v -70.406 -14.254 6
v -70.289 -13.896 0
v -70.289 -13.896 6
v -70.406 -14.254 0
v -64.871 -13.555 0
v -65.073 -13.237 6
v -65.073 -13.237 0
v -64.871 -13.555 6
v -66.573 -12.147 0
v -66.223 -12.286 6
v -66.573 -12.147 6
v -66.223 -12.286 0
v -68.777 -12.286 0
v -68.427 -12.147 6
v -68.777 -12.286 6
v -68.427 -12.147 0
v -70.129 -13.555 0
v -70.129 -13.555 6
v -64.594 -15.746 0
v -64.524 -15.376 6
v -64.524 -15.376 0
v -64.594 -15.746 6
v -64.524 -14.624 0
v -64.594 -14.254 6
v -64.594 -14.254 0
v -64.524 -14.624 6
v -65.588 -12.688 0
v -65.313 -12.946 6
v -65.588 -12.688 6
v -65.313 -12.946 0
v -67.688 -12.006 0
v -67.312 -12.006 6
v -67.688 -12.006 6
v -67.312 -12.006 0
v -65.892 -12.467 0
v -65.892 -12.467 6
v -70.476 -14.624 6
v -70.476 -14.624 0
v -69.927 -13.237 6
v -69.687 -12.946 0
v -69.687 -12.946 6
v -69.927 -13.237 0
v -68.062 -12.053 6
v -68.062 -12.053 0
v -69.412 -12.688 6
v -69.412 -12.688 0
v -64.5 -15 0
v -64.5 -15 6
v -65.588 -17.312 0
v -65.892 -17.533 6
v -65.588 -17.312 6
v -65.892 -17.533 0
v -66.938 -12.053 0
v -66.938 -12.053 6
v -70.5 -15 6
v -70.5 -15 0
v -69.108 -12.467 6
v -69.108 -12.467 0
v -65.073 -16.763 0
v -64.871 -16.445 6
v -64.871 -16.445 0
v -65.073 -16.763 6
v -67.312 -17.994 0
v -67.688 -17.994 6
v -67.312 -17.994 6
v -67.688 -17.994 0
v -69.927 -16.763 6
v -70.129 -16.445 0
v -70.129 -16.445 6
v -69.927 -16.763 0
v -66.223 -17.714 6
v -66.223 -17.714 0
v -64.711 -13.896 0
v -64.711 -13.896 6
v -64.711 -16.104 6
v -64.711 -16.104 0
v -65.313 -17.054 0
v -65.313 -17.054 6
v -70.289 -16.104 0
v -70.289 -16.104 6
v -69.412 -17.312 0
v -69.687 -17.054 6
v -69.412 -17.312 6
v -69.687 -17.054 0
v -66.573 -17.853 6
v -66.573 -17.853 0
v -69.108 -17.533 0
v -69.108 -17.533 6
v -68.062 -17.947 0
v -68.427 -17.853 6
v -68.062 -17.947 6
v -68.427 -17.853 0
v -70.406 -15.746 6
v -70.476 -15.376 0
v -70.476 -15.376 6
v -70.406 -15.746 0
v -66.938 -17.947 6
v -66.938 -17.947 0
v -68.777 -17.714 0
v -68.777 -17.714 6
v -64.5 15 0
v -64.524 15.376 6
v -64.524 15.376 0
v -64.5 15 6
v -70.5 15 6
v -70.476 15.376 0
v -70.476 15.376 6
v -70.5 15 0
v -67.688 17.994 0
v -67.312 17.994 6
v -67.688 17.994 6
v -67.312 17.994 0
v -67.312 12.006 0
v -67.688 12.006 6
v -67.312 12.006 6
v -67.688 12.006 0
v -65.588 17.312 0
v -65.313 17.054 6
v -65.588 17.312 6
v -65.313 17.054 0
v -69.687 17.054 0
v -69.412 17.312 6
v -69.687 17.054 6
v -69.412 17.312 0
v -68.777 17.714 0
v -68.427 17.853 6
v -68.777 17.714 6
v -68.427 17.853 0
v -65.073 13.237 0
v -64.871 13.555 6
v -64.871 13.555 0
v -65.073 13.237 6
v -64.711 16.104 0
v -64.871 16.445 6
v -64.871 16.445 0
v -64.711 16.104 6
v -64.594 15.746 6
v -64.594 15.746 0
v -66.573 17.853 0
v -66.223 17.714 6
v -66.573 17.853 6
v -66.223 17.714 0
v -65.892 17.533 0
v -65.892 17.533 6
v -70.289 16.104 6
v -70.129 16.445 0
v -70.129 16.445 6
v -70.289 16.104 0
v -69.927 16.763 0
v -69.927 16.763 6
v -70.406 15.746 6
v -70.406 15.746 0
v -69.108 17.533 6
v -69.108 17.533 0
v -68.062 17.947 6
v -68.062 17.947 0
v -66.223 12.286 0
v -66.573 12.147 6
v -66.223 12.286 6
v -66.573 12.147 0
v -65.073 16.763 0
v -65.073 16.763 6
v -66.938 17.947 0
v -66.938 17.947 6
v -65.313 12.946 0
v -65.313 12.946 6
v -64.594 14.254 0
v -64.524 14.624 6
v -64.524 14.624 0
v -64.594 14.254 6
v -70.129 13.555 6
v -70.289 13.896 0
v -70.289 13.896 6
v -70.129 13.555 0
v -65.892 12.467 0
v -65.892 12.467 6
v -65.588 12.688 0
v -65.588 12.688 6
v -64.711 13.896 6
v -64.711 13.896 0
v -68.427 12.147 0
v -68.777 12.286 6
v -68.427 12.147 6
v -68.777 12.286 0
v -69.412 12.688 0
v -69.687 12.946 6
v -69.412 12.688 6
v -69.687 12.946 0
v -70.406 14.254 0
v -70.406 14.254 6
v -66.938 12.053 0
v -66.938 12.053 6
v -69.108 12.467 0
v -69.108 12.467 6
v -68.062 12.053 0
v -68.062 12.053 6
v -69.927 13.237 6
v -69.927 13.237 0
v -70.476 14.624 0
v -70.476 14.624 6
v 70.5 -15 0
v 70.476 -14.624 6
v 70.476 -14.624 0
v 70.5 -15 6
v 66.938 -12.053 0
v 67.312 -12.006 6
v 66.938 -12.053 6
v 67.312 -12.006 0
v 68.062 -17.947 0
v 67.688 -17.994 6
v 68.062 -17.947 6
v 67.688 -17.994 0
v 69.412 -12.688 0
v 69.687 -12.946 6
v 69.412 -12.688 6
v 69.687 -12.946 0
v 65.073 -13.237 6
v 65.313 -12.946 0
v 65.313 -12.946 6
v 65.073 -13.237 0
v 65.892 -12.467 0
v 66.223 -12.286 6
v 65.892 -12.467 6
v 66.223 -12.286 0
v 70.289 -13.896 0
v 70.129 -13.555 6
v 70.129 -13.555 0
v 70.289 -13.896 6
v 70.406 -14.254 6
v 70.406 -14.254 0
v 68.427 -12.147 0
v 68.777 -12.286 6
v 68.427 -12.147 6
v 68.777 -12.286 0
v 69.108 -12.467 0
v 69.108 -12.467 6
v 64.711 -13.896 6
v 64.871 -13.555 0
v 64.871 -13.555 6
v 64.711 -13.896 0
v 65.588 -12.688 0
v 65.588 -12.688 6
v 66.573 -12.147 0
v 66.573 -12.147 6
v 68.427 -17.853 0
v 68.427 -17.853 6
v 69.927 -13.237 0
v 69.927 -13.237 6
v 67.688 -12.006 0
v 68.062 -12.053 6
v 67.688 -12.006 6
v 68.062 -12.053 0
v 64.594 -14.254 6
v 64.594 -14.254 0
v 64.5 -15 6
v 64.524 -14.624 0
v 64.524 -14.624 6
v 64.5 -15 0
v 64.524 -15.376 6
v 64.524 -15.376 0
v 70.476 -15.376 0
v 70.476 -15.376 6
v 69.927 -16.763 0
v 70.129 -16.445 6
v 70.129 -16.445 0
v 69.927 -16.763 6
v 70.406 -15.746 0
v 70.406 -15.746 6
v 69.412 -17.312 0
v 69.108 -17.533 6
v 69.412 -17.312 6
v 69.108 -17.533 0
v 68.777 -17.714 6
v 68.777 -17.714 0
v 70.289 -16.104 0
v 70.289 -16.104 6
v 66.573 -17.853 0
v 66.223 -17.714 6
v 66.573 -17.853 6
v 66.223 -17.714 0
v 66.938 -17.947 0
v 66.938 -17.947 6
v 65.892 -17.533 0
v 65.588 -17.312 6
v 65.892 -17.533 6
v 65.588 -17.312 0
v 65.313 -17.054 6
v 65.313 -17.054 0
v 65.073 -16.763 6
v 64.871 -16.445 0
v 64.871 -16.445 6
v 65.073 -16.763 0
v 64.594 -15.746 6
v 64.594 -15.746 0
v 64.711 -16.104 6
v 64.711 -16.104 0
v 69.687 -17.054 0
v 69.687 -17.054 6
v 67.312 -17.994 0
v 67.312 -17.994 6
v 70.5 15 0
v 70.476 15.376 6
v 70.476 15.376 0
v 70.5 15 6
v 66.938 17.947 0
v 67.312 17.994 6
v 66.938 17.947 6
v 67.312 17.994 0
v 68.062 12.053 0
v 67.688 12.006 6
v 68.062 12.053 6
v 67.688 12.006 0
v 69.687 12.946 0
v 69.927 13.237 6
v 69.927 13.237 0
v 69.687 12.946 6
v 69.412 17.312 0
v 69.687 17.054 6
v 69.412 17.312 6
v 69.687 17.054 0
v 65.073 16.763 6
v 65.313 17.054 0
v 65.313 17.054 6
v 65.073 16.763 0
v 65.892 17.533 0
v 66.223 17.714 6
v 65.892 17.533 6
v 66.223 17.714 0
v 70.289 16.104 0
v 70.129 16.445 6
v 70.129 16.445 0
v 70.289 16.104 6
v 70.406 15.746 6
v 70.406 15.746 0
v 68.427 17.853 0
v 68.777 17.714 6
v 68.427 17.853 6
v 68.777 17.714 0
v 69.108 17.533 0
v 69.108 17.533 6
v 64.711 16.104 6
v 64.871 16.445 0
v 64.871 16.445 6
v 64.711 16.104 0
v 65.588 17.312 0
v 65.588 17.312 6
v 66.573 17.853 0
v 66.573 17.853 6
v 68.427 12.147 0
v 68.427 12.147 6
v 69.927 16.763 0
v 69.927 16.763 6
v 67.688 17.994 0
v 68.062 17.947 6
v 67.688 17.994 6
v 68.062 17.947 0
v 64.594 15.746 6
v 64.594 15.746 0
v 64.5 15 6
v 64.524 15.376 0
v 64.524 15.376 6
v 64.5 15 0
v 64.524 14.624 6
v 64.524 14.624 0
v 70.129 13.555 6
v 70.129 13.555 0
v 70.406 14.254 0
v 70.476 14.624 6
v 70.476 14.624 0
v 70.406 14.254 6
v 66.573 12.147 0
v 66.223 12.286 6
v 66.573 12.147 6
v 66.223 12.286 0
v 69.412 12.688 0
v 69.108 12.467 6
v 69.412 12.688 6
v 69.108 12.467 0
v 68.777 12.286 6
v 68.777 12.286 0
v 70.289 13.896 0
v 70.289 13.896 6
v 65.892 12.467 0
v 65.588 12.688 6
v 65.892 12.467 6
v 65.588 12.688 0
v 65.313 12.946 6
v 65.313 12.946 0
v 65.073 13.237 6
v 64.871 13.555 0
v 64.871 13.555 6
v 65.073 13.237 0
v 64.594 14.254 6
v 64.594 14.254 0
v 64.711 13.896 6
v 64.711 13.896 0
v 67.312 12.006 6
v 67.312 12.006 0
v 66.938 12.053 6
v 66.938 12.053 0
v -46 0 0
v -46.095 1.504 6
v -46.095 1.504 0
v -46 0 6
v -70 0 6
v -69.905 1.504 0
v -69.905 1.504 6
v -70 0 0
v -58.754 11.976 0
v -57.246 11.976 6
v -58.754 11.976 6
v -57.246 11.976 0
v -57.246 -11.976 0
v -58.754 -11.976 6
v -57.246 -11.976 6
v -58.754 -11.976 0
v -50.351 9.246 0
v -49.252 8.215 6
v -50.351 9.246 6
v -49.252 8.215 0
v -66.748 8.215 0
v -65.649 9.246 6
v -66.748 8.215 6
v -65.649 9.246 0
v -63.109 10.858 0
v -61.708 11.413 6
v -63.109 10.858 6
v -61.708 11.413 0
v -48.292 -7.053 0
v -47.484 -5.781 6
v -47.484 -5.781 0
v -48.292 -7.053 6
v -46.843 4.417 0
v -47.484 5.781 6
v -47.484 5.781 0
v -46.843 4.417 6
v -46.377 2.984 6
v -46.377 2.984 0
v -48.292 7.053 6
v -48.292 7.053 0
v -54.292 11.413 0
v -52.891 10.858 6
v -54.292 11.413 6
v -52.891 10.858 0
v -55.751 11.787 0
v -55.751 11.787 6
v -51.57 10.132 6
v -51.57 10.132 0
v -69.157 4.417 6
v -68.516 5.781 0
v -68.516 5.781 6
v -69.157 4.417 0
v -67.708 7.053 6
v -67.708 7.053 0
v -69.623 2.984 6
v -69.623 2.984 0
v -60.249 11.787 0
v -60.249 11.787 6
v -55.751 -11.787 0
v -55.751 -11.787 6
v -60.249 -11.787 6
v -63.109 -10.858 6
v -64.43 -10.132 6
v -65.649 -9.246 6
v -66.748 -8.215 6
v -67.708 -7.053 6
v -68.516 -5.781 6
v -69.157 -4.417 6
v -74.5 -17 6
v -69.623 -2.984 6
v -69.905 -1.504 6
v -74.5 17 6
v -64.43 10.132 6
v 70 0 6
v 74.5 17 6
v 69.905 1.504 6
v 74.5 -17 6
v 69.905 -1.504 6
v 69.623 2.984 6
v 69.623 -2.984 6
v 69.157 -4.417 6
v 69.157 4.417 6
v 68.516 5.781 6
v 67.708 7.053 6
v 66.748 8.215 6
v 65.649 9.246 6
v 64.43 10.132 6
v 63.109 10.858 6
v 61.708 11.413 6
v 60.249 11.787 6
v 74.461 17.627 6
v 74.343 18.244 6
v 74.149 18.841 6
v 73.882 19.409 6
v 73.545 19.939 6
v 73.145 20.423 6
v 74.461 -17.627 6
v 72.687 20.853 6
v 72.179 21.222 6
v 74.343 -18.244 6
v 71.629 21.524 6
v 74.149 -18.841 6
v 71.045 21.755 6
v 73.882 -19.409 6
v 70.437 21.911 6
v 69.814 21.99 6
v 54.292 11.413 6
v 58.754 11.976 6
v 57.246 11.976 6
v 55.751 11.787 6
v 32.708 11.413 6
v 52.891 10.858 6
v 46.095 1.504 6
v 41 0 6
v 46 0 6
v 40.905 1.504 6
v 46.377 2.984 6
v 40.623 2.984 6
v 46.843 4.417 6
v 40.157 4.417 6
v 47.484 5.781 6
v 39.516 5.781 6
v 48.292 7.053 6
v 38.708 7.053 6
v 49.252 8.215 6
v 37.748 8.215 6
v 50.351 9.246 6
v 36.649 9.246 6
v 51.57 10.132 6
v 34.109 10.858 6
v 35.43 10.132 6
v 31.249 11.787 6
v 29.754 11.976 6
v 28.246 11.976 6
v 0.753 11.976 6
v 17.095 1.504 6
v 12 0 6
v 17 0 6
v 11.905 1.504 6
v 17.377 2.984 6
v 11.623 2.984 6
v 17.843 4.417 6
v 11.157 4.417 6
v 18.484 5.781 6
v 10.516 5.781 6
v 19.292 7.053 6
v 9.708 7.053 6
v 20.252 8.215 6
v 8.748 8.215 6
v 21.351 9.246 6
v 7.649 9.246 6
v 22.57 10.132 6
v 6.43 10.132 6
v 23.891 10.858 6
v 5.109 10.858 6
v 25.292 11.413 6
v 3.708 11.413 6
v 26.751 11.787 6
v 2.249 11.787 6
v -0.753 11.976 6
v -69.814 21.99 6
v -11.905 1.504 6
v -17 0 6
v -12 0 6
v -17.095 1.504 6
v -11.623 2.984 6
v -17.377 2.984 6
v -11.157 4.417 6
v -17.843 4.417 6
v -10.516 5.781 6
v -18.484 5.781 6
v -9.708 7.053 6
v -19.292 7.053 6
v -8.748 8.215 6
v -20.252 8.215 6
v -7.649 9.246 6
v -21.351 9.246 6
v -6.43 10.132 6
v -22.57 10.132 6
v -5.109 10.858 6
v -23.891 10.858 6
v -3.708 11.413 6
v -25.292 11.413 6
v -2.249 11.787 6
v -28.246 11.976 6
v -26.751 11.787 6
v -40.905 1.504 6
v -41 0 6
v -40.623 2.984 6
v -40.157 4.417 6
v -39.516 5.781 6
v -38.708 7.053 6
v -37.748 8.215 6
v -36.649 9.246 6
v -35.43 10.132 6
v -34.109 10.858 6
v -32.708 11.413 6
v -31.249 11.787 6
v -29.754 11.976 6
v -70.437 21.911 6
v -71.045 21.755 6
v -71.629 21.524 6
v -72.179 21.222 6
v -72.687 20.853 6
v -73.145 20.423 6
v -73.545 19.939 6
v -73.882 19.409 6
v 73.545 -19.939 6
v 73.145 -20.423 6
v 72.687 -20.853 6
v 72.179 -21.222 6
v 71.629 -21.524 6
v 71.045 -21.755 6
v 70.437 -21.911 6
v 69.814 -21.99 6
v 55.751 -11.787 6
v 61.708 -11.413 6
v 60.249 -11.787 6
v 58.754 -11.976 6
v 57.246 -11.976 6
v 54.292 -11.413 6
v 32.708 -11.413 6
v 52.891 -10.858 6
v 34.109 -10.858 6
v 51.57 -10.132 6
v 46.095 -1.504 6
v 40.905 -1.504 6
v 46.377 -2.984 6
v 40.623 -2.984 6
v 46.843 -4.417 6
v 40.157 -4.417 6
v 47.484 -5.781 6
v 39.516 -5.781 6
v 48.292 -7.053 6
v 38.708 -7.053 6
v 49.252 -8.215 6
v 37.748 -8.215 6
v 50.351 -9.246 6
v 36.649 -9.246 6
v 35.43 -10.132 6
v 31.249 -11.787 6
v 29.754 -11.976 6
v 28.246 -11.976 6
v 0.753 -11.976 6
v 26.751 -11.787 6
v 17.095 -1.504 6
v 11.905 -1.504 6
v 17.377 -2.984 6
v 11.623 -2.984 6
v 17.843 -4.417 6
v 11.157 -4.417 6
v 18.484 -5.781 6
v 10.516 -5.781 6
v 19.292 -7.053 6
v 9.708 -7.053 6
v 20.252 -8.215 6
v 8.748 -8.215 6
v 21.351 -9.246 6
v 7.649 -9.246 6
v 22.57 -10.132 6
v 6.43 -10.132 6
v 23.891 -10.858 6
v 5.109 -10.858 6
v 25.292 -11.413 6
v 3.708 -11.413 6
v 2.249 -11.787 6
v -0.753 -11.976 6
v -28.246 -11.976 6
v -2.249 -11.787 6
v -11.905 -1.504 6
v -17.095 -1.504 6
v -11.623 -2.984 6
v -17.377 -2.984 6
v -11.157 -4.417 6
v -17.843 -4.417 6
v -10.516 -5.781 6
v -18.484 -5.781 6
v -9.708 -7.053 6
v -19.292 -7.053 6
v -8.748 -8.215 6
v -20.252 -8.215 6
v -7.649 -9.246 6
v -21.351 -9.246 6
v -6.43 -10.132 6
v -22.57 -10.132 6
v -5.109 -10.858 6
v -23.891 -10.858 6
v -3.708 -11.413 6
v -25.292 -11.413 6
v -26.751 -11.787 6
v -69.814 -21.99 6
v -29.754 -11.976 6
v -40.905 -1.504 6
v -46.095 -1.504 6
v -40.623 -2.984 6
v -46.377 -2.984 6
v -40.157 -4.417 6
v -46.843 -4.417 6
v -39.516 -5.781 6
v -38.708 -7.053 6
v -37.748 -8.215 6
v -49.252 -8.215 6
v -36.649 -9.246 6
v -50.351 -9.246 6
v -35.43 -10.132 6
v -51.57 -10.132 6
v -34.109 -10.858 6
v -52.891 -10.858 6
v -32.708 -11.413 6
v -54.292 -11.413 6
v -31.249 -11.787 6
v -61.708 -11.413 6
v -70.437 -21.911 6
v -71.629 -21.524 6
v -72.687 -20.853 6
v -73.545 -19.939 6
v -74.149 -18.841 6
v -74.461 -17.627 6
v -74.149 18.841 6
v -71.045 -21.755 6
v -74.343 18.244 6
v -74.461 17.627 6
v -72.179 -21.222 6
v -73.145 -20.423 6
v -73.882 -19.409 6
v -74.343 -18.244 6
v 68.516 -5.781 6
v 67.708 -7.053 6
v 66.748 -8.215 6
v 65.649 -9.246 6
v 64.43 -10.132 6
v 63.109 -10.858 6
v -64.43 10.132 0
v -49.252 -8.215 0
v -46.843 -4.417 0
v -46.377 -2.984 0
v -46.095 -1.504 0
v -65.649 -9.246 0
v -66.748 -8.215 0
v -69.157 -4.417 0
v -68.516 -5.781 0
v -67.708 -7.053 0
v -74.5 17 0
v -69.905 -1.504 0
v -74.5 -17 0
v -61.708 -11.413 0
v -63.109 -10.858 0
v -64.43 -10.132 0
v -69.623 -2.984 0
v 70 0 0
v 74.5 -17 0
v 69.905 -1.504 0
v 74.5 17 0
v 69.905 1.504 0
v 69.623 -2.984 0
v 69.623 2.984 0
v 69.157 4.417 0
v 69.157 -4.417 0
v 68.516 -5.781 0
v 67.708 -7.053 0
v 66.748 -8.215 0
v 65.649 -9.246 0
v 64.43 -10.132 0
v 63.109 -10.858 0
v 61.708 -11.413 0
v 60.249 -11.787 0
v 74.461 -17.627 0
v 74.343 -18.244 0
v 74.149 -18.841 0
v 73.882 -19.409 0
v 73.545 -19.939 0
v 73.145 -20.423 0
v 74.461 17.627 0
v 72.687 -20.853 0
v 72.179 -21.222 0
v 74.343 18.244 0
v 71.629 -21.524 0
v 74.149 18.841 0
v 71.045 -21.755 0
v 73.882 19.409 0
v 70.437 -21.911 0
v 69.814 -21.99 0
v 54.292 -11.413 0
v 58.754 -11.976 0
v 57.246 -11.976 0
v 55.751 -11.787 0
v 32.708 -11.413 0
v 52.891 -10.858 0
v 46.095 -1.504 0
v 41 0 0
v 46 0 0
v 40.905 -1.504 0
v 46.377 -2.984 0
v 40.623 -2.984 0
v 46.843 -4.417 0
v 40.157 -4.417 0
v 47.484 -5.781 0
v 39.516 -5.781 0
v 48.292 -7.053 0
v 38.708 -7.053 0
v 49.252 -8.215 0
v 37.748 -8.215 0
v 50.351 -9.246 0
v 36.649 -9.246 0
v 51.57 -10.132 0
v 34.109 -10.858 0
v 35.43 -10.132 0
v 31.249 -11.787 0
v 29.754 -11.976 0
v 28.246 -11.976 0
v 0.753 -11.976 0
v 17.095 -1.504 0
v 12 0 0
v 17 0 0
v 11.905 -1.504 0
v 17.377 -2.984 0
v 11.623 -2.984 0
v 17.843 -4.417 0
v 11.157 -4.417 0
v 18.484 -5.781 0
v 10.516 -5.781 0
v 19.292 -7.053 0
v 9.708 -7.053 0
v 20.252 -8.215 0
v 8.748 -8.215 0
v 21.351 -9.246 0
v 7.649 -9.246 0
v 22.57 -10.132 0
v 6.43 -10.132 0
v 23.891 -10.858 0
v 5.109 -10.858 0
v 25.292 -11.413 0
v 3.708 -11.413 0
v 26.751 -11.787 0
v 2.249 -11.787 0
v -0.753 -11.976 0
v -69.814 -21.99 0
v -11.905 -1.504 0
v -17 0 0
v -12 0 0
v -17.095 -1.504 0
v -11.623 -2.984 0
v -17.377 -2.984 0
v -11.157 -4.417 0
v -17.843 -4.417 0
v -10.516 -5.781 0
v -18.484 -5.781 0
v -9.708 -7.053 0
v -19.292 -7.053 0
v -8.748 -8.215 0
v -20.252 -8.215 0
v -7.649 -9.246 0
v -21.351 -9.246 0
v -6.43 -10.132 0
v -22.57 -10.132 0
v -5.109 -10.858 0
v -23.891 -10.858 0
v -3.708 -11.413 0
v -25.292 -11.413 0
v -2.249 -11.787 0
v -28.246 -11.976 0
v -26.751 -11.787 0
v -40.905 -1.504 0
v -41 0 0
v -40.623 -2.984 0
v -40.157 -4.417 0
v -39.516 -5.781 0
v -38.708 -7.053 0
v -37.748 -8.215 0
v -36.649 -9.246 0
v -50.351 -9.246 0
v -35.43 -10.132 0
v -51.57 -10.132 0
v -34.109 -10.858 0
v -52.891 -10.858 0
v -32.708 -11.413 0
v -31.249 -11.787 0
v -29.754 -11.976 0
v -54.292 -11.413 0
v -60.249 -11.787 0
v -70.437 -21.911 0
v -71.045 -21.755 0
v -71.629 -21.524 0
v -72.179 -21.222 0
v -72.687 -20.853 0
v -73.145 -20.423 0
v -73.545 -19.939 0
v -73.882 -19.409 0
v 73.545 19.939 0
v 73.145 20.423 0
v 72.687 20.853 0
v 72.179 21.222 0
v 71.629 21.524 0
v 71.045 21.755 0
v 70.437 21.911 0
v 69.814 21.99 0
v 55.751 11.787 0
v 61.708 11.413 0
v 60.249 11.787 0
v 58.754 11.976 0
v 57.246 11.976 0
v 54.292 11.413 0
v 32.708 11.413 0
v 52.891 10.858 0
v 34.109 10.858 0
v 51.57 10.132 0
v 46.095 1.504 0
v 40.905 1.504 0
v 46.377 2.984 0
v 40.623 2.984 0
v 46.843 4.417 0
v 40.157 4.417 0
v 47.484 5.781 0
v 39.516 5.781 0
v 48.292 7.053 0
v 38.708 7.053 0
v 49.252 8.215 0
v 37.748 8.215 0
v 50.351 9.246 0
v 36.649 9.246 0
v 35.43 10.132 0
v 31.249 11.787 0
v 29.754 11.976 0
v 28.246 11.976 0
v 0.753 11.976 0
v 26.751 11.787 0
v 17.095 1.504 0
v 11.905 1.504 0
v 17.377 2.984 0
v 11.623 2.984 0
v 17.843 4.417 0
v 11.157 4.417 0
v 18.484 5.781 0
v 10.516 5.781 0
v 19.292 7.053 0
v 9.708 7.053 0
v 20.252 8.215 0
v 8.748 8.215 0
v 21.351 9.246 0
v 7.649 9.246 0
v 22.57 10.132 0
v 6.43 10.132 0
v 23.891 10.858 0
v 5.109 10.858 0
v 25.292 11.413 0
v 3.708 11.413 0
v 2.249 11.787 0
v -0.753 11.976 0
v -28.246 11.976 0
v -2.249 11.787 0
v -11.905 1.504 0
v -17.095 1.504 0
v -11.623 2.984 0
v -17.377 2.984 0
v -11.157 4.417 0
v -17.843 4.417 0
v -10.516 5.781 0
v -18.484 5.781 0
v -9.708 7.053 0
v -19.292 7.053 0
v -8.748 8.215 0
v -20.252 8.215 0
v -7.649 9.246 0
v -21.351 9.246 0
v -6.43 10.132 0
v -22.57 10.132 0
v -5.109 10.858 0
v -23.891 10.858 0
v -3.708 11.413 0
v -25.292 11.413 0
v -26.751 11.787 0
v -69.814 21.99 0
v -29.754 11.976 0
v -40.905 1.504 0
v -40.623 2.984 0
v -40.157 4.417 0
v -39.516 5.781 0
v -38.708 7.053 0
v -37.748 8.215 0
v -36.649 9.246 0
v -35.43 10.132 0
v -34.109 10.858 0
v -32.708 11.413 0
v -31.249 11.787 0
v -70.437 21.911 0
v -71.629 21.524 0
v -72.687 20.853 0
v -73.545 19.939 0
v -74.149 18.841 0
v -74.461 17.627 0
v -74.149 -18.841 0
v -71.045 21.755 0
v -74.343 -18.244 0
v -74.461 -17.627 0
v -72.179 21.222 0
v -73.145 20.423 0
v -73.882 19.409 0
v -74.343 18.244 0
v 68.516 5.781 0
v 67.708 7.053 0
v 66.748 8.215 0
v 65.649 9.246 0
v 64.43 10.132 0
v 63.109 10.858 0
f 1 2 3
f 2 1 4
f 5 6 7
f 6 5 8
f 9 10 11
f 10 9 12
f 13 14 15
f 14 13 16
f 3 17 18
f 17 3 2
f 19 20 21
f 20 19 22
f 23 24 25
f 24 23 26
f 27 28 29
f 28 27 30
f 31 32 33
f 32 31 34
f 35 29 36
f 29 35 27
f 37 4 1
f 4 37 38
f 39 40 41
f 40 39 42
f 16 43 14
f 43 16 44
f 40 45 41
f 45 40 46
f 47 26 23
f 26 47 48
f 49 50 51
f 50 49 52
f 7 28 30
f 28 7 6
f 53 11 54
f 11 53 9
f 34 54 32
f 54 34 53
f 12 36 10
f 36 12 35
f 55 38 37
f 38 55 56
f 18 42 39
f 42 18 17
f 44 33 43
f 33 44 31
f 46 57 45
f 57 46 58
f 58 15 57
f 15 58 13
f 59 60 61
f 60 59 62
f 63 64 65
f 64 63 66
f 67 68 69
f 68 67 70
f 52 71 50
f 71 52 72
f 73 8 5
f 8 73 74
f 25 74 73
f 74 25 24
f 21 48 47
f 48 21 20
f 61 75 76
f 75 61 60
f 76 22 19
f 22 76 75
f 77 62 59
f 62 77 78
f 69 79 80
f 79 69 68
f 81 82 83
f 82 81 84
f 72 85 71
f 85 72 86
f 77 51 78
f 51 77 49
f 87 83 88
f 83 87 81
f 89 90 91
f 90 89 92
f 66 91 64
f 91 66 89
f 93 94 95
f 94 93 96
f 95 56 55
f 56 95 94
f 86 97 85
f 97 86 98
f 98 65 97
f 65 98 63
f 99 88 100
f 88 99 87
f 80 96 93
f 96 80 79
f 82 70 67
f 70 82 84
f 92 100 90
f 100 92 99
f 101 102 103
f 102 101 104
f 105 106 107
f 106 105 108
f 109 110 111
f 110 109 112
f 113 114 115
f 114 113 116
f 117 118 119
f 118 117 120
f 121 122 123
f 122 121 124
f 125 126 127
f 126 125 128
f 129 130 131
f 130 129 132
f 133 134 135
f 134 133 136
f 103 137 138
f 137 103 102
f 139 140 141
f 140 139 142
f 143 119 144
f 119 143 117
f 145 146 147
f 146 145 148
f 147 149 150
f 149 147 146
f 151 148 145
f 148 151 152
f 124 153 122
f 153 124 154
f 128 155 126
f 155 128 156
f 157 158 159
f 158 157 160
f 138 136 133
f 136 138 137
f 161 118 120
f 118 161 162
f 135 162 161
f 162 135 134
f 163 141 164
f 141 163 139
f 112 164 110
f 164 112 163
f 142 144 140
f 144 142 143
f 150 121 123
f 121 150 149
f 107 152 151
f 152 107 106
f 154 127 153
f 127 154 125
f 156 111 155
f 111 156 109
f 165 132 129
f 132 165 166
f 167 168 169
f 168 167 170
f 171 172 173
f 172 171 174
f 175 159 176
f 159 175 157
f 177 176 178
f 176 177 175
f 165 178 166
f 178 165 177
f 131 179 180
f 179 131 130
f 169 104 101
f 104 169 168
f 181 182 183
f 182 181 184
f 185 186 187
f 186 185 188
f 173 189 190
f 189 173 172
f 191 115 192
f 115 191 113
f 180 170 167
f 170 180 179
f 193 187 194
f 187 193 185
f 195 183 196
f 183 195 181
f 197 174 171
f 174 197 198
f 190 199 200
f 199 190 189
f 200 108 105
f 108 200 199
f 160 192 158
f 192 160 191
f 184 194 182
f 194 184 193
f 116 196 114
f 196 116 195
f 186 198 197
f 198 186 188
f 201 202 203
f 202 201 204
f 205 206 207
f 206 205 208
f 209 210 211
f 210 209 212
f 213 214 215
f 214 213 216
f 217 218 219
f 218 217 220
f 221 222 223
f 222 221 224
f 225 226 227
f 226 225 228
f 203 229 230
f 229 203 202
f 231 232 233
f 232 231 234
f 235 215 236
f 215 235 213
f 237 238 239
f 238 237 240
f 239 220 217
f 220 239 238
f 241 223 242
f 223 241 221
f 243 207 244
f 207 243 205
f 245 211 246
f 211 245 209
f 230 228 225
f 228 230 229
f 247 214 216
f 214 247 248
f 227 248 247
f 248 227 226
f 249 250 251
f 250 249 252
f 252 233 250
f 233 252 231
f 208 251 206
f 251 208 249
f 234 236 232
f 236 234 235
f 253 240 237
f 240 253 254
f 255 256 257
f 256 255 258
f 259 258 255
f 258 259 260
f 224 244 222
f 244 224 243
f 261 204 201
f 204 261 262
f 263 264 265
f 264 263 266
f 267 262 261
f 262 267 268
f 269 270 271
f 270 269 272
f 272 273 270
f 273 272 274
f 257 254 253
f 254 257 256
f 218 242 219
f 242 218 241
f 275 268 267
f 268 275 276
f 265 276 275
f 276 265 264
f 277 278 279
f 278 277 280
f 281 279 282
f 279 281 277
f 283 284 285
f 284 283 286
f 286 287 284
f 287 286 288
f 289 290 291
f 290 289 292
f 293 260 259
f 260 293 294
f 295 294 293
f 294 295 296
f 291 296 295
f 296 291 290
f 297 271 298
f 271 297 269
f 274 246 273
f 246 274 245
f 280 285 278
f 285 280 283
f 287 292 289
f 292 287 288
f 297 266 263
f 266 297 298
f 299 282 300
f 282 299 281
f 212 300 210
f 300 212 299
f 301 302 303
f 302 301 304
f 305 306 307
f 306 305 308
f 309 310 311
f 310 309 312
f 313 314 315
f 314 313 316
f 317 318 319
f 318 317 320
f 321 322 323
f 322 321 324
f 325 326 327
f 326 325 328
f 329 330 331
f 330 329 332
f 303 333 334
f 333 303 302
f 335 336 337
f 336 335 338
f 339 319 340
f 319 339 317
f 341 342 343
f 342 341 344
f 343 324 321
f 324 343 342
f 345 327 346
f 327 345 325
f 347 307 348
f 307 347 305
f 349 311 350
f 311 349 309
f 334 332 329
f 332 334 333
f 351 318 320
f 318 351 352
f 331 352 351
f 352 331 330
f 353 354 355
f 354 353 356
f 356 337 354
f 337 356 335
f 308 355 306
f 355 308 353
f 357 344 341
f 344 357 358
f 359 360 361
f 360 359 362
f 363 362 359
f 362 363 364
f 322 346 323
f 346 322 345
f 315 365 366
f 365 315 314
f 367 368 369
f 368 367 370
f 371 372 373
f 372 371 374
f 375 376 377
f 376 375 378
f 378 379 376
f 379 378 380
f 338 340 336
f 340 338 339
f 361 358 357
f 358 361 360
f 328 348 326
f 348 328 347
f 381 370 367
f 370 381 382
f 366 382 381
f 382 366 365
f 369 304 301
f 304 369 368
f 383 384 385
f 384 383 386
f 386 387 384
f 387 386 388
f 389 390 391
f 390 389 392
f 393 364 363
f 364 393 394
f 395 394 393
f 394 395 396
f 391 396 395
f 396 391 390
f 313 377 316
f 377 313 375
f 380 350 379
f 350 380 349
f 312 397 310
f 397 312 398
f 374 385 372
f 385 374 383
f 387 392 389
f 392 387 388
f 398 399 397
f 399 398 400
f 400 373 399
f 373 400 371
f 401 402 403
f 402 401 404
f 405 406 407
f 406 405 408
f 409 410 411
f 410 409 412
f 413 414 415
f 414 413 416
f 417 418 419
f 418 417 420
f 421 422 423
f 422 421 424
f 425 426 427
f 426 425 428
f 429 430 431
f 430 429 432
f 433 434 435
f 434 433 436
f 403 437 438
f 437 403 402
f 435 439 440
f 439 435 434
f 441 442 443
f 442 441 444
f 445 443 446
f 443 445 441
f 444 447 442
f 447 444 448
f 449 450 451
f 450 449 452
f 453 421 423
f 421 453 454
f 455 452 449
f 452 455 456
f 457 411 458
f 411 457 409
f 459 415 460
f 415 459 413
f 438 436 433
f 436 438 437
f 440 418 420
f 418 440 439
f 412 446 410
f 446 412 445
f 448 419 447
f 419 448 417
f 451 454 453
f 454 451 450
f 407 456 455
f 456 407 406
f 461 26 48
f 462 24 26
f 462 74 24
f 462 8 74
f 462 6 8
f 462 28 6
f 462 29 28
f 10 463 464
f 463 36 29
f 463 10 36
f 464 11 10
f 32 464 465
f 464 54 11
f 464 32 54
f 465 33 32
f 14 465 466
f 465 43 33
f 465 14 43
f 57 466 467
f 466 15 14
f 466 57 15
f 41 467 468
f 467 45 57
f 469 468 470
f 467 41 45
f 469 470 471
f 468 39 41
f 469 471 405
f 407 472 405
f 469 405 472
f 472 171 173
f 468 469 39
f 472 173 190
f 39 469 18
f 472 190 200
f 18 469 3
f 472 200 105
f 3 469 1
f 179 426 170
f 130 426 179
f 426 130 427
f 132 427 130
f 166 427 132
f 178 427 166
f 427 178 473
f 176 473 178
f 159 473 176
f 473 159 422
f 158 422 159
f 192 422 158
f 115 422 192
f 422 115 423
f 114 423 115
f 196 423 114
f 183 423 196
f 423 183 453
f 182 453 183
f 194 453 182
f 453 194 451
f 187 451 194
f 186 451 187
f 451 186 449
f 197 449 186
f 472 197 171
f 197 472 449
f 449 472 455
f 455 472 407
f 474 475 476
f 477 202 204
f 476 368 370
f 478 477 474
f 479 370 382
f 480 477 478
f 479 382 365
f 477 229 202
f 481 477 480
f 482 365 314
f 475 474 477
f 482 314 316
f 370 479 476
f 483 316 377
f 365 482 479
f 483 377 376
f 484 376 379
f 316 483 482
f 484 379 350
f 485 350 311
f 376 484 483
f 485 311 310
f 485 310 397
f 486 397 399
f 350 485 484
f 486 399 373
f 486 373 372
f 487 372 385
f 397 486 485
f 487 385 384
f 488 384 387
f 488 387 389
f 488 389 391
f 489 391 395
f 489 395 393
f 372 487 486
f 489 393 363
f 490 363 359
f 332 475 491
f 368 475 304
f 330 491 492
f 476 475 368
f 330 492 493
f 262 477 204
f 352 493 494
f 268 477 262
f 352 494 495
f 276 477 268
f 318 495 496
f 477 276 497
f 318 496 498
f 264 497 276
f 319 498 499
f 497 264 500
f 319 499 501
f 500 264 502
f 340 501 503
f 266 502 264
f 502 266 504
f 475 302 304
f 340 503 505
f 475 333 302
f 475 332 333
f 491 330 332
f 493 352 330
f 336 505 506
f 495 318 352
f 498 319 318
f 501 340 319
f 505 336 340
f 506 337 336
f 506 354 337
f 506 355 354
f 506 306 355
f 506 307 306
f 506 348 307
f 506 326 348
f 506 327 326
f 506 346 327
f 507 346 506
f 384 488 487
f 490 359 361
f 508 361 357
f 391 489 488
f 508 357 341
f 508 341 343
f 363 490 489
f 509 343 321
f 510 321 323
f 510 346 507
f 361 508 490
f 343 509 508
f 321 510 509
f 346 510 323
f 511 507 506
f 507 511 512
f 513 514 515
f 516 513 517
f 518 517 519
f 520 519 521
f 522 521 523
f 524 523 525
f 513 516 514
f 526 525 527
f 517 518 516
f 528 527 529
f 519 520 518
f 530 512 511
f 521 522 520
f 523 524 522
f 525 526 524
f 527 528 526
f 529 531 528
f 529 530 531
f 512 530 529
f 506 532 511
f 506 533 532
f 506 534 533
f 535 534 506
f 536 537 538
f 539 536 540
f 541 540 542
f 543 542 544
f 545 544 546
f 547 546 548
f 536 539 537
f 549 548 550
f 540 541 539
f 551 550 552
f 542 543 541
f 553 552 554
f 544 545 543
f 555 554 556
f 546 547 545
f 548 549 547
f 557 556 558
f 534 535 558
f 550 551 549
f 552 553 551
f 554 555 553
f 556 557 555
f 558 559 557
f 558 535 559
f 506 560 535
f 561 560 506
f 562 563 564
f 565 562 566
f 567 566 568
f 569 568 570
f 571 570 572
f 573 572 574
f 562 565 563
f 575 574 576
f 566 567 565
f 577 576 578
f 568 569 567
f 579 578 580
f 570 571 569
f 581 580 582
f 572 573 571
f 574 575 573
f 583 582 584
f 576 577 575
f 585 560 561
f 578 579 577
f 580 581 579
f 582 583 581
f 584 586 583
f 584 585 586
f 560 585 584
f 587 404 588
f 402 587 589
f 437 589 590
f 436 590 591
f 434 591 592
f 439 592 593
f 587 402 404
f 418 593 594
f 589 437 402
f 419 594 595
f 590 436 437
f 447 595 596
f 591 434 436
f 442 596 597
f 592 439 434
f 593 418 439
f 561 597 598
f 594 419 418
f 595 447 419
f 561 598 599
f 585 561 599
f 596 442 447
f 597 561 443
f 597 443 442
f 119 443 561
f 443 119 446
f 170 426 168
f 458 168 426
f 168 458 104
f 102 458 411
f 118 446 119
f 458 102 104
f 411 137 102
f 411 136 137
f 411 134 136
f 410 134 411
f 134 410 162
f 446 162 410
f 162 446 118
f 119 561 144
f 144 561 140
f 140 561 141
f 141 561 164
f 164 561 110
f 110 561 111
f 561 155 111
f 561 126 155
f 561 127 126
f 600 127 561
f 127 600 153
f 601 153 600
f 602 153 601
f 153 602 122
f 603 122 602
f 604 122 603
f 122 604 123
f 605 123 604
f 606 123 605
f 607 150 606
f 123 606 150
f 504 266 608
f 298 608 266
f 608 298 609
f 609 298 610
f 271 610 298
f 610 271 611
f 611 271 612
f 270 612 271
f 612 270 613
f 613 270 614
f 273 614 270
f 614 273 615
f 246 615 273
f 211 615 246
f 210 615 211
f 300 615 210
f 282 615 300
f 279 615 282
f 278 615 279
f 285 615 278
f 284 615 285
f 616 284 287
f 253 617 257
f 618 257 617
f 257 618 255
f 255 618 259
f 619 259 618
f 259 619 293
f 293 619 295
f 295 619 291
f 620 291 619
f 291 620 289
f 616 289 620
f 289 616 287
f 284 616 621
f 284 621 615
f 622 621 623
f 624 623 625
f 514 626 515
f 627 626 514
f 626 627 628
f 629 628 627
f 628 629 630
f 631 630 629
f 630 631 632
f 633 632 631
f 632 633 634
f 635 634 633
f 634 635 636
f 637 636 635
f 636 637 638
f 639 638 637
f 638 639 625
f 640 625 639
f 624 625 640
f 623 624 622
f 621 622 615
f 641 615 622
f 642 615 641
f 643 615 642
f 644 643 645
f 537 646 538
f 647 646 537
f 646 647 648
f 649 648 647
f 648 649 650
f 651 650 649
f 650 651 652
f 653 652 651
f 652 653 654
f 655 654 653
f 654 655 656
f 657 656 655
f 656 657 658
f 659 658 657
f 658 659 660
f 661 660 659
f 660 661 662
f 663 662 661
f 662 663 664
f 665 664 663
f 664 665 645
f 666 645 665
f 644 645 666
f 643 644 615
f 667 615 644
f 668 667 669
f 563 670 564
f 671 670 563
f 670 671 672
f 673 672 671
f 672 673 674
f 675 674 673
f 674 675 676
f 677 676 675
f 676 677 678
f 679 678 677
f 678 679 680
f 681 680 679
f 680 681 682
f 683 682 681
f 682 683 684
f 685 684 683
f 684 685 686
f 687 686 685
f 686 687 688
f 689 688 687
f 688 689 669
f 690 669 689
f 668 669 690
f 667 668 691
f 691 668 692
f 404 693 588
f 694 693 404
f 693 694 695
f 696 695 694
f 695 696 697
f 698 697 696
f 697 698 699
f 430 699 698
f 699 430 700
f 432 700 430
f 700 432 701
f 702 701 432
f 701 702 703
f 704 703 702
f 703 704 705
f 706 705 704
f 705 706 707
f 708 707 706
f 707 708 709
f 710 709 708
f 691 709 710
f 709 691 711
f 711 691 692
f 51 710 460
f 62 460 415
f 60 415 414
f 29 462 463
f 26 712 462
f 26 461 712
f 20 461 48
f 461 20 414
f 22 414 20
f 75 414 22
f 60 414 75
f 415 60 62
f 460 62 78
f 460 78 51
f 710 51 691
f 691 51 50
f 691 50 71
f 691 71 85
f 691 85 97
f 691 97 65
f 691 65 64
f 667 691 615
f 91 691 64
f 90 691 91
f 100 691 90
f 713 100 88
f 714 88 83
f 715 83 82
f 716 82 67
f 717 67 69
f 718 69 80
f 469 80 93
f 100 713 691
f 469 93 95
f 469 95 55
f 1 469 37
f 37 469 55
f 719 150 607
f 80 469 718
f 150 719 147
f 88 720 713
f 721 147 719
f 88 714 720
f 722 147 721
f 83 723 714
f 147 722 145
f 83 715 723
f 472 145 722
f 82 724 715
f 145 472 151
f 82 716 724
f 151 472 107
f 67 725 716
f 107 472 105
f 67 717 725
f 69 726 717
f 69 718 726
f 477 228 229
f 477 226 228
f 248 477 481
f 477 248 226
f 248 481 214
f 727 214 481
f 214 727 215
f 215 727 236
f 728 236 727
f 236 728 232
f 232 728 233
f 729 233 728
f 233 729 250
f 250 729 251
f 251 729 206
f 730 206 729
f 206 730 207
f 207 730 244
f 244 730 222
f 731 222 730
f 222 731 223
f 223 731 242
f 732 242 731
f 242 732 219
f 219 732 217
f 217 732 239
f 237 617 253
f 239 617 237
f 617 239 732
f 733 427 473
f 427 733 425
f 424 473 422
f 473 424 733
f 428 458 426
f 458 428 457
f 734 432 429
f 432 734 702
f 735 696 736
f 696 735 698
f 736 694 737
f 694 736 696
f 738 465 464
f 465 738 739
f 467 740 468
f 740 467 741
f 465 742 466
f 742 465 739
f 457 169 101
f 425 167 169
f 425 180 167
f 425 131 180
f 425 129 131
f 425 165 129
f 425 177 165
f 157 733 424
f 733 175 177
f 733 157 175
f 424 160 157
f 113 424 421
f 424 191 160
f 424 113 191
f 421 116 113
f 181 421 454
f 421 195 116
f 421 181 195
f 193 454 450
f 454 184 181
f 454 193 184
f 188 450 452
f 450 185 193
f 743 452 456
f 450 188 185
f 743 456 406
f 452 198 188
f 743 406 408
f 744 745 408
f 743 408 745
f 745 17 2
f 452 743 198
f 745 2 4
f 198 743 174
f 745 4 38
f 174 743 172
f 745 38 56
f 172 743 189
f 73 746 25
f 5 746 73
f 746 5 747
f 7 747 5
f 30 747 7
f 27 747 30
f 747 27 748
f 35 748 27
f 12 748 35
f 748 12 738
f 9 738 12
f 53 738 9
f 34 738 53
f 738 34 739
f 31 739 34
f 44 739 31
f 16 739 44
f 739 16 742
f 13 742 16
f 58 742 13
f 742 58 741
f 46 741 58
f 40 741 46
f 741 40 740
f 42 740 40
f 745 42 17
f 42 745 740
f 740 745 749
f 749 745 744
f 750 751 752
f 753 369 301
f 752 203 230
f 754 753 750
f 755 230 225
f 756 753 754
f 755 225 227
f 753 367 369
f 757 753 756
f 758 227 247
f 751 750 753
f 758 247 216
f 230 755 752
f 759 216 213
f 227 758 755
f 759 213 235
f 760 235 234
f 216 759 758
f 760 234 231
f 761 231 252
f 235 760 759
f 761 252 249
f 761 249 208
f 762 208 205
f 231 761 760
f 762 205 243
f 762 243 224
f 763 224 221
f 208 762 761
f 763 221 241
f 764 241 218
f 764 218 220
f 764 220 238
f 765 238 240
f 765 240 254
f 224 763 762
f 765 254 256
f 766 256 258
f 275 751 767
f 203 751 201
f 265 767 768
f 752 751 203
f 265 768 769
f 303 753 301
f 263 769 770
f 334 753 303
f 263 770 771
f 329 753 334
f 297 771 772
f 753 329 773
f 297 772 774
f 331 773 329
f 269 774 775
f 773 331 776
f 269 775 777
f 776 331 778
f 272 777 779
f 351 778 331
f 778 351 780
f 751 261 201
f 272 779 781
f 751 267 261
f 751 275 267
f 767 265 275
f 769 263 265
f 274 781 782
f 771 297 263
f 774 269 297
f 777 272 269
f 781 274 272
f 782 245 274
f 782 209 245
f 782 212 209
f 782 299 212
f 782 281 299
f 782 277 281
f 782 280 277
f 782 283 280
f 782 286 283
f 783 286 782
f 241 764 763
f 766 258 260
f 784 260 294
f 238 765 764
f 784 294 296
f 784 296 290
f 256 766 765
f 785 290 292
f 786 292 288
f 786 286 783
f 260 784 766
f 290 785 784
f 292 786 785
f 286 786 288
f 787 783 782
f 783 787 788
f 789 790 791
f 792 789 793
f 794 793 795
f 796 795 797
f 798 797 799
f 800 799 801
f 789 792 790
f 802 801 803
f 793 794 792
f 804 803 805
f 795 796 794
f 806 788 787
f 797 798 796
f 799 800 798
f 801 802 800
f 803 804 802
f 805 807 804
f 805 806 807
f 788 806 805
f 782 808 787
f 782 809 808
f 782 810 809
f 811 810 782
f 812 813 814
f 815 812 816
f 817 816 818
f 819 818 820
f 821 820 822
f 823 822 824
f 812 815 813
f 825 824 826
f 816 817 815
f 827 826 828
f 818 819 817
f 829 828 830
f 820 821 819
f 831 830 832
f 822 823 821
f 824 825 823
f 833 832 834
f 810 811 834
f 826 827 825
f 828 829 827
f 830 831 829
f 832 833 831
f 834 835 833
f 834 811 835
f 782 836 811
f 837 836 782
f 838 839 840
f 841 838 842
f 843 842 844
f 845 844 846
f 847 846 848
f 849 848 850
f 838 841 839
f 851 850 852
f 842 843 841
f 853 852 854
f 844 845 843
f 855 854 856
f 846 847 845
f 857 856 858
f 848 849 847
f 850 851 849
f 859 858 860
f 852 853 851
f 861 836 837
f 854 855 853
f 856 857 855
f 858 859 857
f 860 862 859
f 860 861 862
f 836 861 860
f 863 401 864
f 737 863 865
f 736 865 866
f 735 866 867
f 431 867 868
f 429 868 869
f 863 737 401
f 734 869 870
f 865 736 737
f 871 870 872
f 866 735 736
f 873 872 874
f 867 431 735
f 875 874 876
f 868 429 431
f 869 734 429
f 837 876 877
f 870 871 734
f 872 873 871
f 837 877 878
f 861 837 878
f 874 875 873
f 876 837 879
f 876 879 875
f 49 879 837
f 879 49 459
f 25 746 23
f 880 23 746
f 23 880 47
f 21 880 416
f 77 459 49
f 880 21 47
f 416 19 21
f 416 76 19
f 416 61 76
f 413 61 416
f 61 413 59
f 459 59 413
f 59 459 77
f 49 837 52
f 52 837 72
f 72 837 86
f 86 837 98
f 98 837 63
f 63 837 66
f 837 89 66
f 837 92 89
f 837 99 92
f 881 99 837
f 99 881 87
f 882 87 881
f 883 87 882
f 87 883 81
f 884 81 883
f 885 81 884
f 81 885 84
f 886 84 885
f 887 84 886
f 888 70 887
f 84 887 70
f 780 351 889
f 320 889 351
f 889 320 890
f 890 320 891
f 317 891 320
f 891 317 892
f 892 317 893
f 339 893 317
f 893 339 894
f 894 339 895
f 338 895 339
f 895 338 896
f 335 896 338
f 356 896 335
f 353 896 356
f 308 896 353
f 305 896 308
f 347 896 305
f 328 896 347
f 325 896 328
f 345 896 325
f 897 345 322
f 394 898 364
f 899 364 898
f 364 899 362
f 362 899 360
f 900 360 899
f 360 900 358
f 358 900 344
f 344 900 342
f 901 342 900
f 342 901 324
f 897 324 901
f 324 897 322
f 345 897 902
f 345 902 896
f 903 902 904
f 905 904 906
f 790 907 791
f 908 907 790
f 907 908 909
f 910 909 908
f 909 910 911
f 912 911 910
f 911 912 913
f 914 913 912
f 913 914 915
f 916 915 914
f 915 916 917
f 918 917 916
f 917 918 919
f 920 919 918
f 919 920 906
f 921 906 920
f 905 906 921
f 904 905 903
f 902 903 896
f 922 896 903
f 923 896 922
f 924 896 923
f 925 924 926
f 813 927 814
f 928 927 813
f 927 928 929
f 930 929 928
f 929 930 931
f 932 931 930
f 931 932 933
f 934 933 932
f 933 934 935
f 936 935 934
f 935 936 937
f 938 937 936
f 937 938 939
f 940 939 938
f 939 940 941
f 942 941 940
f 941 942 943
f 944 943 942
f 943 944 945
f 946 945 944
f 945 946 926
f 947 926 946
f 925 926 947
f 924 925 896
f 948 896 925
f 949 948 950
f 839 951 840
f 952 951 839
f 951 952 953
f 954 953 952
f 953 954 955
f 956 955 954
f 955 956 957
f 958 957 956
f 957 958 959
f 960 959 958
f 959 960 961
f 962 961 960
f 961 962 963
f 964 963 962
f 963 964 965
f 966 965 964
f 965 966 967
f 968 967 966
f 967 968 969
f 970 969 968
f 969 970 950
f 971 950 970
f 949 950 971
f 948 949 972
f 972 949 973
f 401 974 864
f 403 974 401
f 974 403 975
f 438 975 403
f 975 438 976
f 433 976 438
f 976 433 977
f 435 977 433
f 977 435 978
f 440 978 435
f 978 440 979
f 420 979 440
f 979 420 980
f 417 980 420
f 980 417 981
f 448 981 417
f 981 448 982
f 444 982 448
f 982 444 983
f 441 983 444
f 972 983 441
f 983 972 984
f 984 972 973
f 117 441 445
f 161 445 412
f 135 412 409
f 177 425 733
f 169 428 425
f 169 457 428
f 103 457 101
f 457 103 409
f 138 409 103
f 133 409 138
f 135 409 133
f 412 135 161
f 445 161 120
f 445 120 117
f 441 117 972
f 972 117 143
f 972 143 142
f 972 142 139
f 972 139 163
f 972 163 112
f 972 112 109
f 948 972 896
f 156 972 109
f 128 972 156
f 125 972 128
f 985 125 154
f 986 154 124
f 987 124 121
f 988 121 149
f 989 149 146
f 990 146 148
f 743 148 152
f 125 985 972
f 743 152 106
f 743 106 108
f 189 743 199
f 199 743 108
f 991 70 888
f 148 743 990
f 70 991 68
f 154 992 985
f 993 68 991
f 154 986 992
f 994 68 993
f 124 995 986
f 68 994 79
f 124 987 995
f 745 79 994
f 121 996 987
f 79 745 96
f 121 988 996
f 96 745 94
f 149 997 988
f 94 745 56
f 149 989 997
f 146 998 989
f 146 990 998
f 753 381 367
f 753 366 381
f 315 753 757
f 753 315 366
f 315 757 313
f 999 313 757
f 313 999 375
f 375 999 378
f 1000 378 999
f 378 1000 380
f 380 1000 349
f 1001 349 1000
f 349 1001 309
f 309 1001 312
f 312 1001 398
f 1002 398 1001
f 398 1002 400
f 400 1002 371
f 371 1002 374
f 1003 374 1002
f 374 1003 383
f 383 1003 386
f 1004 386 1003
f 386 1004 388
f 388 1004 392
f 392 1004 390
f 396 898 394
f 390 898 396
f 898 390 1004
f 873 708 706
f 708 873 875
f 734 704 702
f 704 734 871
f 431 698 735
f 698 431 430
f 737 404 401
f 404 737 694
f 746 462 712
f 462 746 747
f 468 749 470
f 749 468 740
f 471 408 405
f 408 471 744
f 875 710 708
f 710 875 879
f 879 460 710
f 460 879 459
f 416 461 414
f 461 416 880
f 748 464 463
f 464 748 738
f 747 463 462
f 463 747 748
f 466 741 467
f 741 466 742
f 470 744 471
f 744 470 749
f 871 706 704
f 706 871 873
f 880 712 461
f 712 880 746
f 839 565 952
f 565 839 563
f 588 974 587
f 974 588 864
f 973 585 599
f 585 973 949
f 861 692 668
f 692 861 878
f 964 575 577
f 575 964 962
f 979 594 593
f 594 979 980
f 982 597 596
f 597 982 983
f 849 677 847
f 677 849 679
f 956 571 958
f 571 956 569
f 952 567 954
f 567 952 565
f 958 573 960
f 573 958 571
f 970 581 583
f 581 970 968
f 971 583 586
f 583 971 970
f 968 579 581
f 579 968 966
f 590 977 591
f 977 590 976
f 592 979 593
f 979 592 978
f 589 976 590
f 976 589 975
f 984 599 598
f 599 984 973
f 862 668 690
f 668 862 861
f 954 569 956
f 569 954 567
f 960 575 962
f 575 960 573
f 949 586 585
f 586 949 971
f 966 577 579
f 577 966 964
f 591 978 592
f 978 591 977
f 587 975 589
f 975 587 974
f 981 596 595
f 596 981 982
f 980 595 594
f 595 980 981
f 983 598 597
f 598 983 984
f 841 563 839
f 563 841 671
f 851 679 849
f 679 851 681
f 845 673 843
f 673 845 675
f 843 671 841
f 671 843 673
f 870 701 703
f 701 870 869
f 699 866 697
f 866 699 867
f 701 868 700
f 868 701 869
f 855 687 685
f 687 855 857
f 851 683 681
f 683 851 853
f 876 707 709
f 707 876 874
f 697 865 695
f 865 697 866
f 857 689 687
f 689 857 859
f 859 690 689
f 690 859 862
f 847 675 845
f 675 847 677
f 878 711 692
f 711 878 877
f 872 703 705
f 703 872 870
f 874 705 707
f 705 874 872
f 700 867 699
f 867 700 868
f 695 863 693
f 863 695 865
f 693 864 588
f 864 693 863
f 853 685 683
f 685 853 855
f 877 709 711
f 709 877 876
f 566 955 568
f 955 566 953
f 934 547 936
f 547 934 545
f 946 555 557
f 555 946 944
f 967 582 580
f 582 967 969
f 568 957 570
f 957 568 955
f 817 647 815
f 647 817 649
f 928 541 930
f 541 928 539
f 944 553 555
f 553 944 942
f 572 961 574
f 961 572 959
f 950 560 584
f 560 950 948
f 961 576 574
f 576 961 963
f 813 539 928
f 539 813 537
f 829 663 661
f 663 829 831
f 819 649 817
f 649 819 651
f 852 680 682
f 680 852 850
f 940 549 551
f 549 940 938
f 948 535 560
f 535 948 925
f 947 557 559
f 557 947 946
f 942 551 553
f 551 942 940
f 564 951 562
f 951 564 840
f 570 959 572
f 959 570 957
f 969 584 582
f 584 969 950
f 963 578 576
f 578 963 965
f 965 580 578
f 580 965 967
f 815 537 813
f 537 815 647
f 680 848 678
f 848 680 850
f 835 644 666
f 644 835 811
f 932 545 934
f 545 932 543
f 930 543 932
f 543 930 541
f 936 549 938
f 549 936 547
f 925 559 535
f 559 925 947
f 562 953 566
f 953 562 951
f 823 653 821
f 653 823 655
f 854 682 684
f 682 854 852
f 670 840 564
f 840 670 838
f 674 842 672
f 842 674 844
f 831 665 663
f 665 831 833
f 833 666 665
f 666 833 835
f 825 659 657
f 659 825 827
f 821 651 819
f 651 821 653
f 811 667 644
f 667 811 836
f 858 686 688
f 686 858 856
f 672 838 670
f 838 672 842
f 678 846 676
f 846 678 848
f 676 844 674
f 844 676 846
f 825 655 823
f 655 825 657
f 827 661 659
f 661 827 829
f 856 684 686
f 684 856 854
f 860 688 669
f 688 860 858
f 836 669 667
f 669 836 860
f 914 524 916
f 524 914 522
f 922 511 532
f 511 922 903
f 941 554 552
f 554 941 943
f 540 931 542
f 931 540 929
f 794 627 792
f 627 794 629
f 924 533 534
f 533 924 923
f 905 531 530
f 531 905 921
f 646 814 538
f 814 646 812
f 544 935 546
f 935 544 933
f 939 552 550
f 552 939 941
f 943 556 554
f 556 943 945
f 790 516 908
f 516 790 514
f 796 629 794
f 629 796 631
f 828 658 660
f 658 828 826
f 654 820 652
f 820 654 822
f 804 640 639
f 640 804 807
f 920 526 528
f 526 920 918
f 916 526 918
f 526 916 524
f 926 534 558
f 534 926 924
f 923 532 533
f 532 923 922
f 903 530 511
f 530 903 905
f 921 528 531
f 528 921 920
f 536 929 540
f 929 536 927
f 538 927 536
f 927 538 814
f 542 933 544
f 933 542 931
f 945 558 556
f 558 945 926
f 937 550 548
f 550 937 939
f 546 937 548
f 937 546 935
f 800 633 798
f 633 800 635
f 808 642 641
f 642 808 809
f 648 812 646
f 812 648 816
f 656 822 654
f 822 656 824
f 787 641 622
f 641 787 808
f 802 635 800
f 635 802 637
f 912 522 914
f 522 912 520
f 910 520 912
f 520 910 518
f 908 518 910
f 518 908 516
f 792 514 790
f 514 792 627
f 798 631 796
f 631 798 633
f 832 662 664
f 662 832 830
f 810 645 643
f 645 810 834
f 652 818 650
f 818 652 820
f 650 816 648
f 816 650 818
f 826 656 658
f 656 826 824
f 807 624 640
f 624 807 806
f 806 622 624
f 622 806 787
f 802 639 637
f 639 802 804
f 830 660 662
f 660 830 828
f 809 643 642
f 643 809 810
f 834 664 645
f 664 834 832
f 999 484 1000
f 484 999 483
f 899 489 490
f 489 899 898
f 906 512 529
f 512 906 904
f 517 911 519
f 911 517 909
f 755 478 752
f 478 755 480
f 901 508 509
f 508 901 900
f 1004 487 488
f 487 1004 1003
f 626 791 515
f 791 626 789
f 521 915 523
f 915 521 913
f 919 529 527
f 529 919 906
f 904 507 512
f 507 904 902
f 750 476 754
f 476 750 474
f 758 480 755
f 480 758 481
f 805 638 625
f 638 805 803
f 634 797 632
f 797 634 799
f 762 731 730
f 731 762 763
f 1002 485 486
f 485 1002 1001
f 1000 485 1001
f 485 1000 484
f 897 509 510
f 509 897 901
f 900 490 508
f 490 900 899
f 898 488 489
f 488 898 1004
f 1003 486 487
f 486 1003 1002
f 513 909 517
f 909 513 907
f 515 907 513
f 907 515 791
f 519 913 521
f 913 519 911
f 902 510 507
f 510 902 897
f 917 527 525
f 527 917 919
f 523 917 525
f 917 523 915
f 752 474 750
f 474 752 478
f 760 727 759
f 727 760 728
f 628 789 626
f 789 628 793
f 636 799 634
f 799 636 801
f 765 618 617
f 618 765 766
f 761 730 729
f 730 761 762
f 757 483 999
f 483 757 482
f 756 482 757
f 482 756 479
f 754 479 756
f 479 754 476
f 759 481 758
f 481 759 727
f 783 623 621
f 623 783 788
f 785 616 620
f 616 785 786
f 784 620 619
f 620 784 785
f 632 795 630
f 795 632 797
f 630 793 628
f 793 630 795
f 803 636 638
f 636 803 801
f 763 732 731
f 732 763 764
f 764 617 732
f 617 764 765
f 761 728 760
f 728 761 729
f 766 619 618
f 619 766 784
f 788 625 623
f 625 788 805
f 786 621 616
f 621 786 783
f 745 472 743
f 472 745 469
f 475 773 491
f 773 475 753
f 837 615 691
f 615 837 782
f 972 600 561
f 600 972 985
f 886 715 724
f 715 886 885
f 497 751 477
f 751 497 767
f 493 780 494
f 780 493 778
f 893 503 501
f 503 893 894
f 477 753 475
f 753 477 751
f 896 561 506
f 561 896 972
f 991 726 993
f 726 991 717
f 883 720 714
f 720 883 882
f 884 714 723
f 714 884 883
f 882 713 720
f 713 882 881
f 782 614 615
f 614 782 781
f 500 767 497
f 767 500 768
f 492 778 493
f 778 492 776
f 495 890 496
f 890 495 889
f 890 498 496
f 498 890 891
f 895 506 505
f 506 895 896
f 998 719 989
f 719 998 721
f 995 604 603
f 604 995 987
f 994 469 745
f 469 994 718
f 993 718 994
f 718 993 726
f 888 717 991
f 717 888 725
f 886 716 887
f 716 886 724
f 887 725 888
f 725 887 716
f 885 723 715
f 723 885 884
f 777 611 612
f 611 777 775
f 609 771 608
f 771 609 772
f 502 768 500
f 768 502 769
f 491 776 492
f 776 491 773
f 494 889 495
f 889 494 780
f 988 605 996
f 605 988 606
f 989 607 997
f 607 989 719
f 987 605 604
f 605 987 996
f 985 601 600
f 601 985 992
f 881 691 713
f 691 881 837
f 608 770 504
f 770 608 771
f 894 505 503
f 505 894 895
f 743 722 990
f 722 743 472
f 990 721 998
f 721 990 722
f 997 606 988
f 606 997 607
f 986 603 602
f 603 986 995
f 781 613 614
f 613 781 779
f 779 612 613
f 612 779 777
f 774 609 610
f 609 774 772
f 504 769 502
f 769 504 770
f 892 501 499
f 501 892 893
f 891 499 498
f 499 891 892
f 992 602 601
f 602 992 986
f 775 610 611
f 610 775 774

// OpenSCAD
$fn = 50;


difference() {
	union() {
		hull() {
			translate(v = [-69.5000000000, 17.0000000000, 0]) {
				cylinder(h = 6, r = 5);
			}
			translate(v = [69.5000000000, 17.0000000000, 0]) {
				cylinder(h = 6, r = 5);
			}
			translate(v = [-69.5000000000, -17.0000000000, 0]) {
				cylinder(h = 6, r = 5);
			}
			translate(v = [69.5000000000, -17.0000000000, 0]) {
				cylinder(h = 6, r = 5);
			}
		}
	}
	union() {
		#translate(v = [-67.5000000000, -15.0000000000, -100.0000000000]) {
			cylinder(h = 200, r = 3.0000000000);
		}
		#translate(v = [-67.5000000000, 15.0000000000, -100.0000000000]) {
			cylinder(h = 200, r = 3.0000000000);
		}
		#translate(v = [67.5000000000, -15.0000000000, -100.0000000000]) {
			cylinder(h = 200, r = 3.0000000000);
		}
		#translate(v = [67.5000000000, 15.0000000000, -100.0000000000]) {
			cylinder(h = 200, r = 3.0000000000);
		}
		#translate(v = [-58.0000000000, 0, 0]) {
			cylinder(h = 6, r = 12.0000000000);
		}
		#translate(v = [-29.0000000000, 0, 0]) {
			cylinder(h = 6, r = 12.0000000000);
		}
		#cylinder(h = 6, r = 12.0000000000);
		#translate(v = [29.0000000000, 0, 0]) {
			cylinder(h = 6, r = 12.0000000000);
		}
		#translate(v = [58.0000000000, 0, 0]) {
			cylinder(h = 6, r = 12.0000000000);
		}
	}
}
